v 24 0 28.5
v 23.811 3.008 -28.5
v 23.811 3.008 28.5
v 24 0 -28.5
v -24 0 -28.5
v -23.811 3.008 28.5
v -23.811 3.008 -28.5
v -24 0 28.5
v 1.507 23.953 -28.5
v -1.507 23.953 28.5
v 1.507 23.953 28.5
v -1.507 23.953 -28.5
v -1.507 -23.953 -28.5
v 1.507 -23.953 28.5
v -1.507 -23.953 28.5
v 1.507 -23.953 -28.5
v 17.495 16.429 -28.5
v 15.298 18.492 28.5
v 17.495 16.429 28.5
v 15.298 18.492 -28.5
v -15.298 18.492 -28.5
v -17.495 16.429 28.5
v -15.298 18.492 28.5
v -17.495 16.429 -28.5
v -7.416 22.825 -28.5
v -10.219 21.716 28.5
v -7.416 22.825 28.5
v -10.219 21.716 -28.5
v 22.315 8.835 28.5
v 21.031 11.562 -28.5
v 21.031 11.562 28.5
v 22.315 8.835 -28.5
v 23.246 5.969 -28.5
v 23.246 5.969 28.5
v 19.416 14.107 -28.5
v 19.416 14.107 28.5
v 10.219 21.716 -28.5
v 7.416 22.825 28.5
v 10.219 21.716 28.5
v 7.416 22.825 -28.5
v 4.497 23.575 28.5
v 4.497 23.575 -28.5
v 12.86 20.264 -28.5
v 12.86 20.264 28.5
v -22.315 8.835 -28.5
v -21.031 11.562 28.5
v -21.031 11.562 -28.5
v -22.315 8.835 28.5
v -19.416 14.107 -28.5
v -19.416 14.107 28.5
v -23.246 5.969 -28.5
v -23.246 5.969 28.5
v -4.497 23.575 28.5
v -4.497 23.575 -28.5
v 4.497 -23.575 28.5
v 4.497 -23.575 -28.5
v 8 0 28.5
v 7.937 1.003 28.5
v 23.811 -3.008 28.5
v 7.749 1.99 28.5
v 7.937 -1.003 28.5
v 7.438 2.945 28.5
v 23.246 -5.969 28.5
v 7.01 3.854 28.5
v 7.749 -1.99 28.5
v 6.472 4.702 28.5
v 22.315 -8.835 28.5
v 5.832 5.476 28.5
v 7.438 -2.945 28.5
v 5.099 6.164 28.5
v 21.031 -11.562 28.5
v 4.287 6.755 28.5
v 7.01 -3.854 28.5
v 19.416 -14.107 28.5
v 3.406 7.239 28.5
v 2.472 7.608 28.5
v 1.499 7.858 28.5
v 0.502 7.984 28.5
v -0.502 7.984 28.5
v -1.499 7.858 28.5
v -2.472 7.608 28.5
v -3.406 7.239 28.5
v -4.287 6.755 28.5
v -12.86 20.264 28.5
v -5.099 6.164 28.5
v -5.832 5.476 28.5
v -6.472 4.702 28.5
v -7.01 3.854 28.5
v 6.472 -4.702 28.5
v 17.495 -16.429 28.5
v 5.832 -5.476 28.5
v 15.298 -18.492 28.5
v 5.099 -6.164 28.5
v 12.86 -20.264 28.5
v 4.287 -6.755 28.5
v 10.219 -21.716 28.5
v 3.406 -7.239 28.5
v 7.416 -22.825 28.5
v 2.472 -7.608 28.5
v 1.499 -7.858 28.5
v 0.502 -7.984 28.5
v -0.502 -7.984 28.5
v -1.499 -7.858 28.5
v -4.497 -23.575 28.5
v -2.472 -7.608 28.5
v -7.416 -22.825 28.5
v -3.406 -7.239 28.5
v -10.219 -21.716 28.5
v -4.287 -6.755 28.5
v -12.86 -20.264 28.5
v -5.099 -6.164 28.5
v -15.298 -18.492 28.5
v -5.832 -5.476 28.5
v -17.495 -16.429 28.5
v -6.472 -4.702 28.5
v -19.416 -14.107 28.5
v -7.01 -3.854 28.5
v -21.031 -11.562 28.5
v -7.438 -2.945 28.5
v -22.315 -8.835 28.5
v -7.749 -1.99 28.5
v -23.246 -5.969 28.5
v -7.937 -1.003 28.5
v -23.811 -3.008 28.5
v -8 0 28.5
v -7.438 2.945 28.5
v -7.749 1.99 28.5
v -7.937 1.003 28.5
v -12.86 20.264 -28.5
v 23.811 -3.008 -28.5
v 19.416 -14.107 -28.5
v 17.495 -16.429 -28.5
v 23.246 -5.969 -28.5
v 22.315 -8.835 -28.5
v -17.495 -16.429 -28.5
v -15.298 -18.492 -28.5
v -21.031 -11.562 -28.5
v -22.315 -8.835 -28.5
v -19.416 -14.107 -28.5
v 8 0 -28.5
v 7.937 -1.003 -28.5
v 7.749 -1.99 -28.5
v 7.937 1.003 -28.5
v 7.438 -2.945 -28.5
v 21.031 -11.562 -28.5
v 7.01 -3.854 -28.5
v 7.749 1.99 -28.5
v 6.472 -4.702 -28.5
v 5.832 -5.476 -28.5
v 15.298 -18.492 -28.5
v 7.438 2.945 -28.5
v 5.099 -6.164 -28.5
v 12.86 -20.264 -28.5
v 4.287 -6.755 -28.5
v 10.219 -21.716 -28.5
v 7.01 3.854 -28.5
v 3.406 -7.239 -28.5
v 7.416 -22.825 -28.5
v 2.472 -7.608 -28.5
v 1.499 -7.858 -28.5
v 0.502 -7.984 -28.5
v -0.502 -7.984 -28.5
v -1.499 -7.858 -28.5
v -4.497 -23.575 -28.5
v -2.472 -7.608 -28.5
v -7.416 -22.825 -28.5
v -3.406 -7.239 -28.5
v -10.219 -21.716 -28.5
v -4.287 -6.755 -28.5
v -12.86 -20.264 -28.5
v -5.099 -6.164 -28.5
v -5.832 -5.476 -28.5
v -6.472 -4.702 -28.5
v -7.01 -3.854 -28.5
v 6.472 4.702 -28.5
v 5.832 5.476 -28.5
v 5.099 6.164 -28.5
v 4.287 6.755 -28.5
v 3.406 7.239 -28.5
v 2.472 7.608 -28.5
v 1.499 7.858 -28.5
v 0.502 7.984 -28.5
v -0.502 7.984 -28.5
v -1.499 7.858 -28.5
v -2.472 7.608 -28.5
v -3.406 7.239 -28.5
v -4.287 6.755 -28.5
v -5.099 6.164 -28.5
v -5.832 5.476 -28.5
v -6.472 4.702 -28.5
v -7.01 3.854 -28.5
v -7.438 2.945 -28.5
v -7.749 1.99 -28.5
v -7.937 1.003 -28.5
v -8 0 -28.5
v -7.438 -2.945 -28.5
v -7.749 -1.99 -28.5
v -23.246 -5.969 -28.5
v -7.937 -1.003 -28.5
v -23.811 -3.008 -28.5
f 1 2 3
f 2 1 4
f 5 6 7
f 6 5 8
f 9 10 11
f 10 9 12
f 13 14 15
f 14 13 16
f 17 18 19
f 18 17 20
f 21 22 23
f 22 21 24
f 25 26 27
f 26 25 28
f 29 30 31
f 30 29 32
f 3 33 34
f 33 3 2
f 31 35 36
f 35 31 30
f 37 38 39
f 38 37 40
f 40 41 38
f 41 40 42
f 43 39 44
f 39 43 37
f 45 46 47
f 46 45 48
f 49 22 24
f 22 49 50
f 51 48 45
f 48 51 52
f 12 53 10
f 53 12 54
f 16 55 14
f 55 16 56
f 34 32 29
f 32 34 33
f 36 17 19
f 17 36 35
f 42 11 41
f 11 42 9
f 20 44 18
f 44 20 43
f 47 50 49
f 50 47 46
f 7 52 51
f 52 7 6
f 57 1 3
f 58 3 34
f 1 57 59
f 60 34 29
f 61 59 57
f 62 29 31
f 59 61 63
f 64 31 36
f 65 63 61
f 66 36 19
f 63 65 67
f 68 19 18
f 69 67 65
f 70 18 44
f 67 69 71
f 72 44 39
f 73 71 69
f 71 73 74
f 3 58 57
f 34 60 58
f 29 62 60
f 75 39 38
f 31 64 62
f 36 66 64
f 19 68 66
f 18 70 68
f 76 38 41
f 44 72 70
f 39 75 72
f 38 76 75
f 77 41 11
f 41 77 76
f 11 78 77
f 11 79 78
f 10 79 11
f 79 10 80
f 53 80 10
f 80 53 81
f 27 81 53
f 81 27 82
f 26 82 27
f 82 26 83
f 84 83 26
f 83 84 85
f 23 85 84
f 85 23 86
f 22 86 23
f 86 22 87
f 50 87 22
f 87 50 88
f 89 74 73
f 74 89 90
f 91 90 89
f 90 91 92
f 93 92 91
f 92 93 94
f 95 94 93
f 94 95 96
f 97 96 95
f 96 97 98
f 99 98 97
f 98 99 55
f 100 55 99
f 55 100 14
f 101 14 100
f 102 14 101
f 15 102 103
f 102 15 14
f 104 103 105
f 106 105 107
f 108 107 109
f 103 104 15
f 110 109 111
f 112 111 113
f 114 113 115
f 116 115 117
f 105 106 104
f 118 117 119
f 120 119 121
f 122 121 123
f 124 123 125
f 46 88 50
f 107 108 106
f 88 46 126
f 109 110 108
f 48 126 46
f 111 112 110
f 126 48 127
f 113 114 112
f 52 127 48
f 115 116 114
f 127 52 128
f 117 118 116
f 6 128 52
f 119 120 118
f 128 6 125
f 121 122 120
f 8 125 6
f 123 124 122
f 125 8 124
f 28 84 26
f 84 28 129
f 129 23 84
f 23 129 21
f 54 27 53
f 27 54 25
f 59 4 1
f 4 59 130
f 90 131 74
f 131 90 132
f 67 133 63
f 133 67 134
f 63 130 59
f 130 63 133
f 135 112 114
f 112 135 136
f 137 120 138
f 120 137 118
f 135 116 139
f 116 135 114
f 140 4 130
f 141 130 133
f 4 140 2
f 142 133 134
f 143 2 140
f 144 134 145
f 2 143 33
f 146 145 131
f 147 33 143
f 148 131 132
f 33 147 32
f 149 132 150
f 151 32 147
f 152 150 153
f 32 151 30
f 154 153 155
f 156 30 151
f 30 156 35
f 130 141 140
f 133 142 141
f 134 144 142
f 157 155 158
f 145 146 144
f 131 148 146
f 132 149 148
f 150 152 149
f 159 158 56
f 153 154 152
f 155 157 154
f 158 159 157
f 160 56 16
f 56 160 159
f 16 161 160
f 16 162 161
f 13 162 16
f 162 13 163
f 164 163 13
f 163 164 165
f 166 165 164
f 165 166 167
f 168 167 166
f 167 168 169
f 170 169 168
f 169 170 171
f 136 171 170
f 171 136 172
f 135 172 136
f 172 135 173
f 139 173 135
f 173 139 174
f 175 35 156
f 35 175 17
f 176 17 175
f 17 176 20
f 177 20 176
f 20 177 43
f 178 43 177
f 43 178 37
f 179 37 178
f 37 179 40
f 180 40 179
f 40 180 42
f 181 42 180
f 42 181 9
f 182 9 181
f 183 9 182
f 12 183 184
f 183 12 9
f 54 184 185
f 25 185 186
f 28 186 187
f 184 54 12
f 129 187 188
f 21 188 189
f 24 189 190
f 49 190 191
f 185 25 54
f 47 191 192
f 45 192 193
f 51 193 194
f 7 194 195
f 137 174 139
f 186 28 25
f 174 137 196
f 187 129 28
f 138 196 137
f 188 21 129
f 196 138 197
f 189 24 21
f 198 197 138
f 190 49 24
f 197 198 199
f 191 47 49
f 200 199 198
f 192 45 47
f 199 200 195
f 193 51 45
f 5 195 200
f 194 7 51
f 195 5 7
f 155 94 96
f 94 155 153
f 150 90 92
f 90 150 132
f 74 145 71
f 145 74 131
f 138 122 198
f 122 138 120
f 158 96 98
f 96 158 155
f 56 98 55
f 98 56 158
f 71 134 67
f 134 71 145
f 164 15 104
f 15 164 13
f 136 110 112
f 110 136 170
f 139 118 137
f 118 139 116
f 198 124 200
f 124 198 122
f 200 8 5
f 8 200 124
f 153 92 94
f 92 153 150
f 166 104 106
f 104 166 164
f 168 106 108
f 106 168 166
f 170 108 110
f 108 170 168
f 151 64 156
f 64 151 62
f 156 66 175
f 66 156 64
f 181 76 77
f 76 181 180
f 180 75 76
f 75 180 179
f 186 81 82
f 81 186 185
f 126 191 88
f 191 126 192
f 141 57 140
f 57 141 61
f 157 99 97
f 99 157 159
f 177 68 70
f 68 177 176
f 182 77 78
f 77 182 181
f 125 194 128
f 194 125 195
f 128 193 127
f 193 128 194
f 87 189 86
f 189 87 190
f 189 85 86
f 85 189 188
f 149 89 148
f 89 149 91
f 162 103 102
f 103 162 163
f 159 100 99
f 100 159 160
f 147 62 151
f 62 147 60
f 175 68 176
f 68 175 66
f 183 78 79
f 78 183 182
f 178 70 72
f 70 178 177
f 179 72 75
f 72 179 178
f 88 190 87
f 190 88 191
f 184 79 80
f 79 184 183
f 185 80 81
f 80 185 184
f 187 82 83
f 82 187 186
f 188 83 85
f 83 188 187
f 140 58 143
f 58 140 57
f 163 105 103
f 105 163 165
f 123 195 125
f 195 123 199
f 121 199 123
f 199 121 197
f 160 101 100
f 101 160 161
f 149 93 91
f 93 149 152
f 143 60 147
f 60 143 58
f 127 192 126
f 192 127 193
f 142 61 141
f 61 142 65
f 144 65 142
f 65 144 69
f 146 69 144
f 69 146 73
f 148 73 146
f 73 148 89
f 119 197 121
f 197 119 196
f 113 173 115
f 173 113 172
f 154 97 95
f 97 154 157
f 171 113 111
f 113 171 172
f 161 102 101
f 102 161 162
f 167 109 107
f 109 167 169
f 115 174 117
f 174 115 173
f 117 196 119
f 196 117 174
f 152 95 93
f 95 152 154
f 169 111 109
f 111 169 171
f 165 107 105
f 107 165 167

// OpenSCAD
$fn = 50;


difference() {
	union() {
		translate(v = [0, 0, -28.5000000000]) {
			cylinder(h = 57, r = 24.0000000000);
		}
	}
	union() {
		translate(v = [0, 0, -100.0000000000]) {
			cylinder(h = 200, r = 8);
		}
	}
}
